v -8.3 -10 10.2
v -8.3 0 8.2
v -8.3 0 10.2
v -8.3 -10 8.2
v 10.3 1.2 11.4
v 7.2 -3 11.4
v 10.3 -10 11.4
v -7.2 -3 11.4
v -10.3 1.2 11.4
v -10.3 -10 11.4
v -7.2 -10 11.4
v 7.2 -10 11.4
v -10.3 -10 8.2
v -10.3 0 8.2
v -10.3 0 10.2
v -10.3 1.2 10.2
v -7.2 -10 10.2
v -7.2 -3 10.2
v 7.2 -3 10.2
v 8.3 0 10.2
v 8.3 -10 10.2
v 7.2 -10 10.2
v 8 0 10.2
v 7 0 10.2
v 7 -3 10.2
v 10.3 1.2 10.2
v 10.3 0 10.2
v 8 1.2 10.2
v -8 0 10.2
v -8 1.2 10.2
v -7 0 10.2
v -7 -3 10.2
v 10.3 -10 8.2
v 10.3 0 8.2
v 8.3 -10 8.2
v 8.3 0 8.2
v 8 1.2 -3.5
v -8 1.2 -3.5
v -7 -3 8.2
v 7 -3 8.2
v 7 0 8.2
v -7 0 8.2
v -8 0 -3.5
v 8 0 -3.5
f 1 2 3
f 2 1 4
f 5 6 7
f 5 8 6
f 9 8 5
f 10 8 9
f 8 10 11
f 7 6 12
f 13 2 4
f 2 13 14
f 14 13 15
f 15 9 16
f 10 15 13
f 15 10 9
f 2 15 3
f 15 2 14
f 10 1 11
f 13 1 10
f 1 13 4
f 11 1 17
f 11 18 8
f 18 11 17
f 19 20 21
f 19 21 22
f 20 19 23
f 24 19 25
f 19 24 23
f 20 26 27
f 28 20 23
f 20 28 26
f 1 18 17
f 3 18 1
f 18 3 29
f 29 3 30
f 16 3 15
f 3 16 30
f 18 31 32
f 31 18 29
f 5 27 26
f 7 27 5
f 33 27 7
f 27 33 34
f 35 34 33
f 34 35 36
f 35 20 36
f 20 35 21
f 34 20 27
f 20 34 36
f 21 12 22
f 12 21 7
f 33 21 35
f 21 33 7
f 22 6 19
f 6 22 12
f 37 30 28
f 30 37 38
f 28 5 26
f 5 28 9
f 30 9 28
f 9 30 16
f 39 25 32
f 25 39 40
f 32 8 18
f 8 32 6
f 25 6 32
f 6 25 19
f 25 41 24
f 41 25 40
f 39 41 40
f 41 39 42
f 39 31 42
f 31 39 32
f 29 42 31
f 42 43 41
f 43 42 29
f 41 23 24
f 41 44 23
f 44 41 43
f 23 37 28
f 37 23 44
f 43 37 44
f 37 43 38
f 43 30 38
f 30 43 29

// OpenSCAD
// ReachSense six-finger wrap v2. Units: mm. Experimental, physically unverified.
// R: +X lateral, +Y distal (towards fingertip), +Z dorsal.
// A REMOVABLE seating gauge defines Y=0. The wearable deck ends at Y=-3.
// Remove the gauge before testing; no permanent wall blocks the fingertip.
// This defines nominal longitudinal registration, NOT an anatomical 3D point.
$fn = 48;
part = "gauge"; // "holder", "gauge" or "strap"
marker_id = 33;
finger_diameter_mm = 14;
marker_edge_mm = 10;
quiet_zone_mm = 2;
frame_mm = 1;
wall_mm = 2;
stop_wall_mm = 1.2;
strap_width_mm = 6;
strap_length_mm = 90;
gauge_side_clearance_mm = 0.3;
r = finger_diameter_mm/2;
tile = marker_edge_mm + 2*quiet_zone_mm;
deck_width = tile + 2*frame_mm;
length = tile + 2*frame_mm + 8;
deck_front_y = -3;
deck_back_y = deck_front_y-length;
deck_bottom = r + wall_mm - 0.8;
deck_top = deck_bottom + 2;
pocket_depth = 0.2;
marker_y = deck_front_y-(frame_mm+quiet_zone_mm+marker_edge_mm/2);
support_y = [deck_front_y-5,deck_back_y+5];
nail_seat_width = min(8,finger_diameter_mm/2);
nail_seat_z = r-0.6;
assert(finger_diameter_mm >= 12 && finger_diameter_mm <= 26,"Choose a 12–26 mm candidate opening");
assert(marker_edge_mm >= 8 && marker_edge_mm <= 16,"Choose an 8–16 mm black edge");
assert(quiet_zone_mm >= 2,"Keep the full white quiet zone");
assert(marker_id >= 0 && marker_id < 100,"DICT_4X4_100 ID required");
module support(y) {
    translate([0,y,0]) intersection() {
        difference() {
            rotate([90,0,0]) cylinder(r=r+wall_mm,h=6.8,center=true);
            rotate([90,0,0]) cylinder(r=r,h=8.8,center=true);
        }
        translate([-r-wall_mm-1,-4.4,0]) cube([2*(r+wall_mm+1),8.8,r+wall_mm+1]);
    }
    // Flat dorsal bearing at each strap region closes the gap below the deck.
    // Contact with a real nail/dorsal surface and rotational retention are unverified.
    translate([-nail_seat_width/2,y-1.5,nail_seat_z])
        cube([nail_seat_width,3,deck_bottom-nail_seat_z+0.2]);
    for(sign=[-1,1]) translate([sign*(r+wall_mm+2.1),y,1.5]) difference() {
        cube([6,8.8,3],center=true);
        cube([2.6,6.4,5],center=true);
    }
}
module deck() {
    // Rounded corners retain a straight central gauge abutment at Y=-3.
    hull() for(x=[-deck_width/2+1,deck_width/2-1])
        for(y=[deck_back_y+1,deck_front_y-1])
            translate([x,y,deck_bottom]) cylinder(r=1,h=2);
}
module holder() {
    difference() {
        union() { for(y=support_y) support(y); deck(); }
        translate([-tile/2-0.1,marker_y-tile/2-0.1,deck_top-pocket_depth])
            cube([tile+0.2,tile+0.2,pocket_depth+1]);
    }
}
module gauge() {
    // Hand-held drop-on gauge, NOT a validated snap fit. Hold its proximal
    // abutment against the deck's front face at Y=-3 while gently seating the finger.
    // Feet sit on the bare side frame; the ArUco pocket remains clear.
    union() {
        translate([-deck_width/2-2.3,deck_front_y,deck_top])
            cube([deck_width+4.6,-deck_front_y+stop_wall_mm,1.2]);
        // Deck contact Y=-3; fingertip contact Y=0. Remove upwards after tightening.
        translate([-deck_width/2+1,deck_front_y,deck_bottom])
            cube([deck_width-2,-deck_front_y,deck_top-deck_bottom+0.5]);
        translate([-deck_width/2,0,-r/2])
            cube([deck_width,stop_wall_mm,deck_top+1.2+r/2]);
        for(sign=[-1,1]) {
            x=sign>0 ? deck_width/2+gauge_side_clearance_mm : -deck_width/2-gauge_side_clearance_mm-2;
            translate([x,-10,deck_bottom]) cube([2,10,deck_top-deck_bottom+1.2]);
            foot_x=sign>0 ? deck_width/2-0.8 : -deck_width/2-2.3;
            translate([foot_x,-10,deck_top]) cube([3.1,10,1.2]);
        }
    }
}
module strap() {
    // TPU-only ladder strip. Ends require a return loop/fastener or hook-and-loop.
    union() {
        translate([-strap_length_mm/2,-strap_width_mm/2,0]) cube([strap_length_mm,strap_width_mm,0.8]);
        for(x=[-strap_length_mm/2+3:4:strap_length_mm/2-3])
            translate([x-0.7,-strap_width_mm/2,0.8]) cube([1.4,strap_width_mm,0.5]);
    }
}
if(part=="strap") strap(); else if(part=="gauge") gauge(); else holder();
echo(reference_plane_y_mm=0,deck_front_y_mm=deck_front_y);
echo(marker_center_R_mm=[0,marker_y,deck_top-pocket_depth+0.15]);
echo(marker_center_to_reference_plane_mm=-marker_y);
